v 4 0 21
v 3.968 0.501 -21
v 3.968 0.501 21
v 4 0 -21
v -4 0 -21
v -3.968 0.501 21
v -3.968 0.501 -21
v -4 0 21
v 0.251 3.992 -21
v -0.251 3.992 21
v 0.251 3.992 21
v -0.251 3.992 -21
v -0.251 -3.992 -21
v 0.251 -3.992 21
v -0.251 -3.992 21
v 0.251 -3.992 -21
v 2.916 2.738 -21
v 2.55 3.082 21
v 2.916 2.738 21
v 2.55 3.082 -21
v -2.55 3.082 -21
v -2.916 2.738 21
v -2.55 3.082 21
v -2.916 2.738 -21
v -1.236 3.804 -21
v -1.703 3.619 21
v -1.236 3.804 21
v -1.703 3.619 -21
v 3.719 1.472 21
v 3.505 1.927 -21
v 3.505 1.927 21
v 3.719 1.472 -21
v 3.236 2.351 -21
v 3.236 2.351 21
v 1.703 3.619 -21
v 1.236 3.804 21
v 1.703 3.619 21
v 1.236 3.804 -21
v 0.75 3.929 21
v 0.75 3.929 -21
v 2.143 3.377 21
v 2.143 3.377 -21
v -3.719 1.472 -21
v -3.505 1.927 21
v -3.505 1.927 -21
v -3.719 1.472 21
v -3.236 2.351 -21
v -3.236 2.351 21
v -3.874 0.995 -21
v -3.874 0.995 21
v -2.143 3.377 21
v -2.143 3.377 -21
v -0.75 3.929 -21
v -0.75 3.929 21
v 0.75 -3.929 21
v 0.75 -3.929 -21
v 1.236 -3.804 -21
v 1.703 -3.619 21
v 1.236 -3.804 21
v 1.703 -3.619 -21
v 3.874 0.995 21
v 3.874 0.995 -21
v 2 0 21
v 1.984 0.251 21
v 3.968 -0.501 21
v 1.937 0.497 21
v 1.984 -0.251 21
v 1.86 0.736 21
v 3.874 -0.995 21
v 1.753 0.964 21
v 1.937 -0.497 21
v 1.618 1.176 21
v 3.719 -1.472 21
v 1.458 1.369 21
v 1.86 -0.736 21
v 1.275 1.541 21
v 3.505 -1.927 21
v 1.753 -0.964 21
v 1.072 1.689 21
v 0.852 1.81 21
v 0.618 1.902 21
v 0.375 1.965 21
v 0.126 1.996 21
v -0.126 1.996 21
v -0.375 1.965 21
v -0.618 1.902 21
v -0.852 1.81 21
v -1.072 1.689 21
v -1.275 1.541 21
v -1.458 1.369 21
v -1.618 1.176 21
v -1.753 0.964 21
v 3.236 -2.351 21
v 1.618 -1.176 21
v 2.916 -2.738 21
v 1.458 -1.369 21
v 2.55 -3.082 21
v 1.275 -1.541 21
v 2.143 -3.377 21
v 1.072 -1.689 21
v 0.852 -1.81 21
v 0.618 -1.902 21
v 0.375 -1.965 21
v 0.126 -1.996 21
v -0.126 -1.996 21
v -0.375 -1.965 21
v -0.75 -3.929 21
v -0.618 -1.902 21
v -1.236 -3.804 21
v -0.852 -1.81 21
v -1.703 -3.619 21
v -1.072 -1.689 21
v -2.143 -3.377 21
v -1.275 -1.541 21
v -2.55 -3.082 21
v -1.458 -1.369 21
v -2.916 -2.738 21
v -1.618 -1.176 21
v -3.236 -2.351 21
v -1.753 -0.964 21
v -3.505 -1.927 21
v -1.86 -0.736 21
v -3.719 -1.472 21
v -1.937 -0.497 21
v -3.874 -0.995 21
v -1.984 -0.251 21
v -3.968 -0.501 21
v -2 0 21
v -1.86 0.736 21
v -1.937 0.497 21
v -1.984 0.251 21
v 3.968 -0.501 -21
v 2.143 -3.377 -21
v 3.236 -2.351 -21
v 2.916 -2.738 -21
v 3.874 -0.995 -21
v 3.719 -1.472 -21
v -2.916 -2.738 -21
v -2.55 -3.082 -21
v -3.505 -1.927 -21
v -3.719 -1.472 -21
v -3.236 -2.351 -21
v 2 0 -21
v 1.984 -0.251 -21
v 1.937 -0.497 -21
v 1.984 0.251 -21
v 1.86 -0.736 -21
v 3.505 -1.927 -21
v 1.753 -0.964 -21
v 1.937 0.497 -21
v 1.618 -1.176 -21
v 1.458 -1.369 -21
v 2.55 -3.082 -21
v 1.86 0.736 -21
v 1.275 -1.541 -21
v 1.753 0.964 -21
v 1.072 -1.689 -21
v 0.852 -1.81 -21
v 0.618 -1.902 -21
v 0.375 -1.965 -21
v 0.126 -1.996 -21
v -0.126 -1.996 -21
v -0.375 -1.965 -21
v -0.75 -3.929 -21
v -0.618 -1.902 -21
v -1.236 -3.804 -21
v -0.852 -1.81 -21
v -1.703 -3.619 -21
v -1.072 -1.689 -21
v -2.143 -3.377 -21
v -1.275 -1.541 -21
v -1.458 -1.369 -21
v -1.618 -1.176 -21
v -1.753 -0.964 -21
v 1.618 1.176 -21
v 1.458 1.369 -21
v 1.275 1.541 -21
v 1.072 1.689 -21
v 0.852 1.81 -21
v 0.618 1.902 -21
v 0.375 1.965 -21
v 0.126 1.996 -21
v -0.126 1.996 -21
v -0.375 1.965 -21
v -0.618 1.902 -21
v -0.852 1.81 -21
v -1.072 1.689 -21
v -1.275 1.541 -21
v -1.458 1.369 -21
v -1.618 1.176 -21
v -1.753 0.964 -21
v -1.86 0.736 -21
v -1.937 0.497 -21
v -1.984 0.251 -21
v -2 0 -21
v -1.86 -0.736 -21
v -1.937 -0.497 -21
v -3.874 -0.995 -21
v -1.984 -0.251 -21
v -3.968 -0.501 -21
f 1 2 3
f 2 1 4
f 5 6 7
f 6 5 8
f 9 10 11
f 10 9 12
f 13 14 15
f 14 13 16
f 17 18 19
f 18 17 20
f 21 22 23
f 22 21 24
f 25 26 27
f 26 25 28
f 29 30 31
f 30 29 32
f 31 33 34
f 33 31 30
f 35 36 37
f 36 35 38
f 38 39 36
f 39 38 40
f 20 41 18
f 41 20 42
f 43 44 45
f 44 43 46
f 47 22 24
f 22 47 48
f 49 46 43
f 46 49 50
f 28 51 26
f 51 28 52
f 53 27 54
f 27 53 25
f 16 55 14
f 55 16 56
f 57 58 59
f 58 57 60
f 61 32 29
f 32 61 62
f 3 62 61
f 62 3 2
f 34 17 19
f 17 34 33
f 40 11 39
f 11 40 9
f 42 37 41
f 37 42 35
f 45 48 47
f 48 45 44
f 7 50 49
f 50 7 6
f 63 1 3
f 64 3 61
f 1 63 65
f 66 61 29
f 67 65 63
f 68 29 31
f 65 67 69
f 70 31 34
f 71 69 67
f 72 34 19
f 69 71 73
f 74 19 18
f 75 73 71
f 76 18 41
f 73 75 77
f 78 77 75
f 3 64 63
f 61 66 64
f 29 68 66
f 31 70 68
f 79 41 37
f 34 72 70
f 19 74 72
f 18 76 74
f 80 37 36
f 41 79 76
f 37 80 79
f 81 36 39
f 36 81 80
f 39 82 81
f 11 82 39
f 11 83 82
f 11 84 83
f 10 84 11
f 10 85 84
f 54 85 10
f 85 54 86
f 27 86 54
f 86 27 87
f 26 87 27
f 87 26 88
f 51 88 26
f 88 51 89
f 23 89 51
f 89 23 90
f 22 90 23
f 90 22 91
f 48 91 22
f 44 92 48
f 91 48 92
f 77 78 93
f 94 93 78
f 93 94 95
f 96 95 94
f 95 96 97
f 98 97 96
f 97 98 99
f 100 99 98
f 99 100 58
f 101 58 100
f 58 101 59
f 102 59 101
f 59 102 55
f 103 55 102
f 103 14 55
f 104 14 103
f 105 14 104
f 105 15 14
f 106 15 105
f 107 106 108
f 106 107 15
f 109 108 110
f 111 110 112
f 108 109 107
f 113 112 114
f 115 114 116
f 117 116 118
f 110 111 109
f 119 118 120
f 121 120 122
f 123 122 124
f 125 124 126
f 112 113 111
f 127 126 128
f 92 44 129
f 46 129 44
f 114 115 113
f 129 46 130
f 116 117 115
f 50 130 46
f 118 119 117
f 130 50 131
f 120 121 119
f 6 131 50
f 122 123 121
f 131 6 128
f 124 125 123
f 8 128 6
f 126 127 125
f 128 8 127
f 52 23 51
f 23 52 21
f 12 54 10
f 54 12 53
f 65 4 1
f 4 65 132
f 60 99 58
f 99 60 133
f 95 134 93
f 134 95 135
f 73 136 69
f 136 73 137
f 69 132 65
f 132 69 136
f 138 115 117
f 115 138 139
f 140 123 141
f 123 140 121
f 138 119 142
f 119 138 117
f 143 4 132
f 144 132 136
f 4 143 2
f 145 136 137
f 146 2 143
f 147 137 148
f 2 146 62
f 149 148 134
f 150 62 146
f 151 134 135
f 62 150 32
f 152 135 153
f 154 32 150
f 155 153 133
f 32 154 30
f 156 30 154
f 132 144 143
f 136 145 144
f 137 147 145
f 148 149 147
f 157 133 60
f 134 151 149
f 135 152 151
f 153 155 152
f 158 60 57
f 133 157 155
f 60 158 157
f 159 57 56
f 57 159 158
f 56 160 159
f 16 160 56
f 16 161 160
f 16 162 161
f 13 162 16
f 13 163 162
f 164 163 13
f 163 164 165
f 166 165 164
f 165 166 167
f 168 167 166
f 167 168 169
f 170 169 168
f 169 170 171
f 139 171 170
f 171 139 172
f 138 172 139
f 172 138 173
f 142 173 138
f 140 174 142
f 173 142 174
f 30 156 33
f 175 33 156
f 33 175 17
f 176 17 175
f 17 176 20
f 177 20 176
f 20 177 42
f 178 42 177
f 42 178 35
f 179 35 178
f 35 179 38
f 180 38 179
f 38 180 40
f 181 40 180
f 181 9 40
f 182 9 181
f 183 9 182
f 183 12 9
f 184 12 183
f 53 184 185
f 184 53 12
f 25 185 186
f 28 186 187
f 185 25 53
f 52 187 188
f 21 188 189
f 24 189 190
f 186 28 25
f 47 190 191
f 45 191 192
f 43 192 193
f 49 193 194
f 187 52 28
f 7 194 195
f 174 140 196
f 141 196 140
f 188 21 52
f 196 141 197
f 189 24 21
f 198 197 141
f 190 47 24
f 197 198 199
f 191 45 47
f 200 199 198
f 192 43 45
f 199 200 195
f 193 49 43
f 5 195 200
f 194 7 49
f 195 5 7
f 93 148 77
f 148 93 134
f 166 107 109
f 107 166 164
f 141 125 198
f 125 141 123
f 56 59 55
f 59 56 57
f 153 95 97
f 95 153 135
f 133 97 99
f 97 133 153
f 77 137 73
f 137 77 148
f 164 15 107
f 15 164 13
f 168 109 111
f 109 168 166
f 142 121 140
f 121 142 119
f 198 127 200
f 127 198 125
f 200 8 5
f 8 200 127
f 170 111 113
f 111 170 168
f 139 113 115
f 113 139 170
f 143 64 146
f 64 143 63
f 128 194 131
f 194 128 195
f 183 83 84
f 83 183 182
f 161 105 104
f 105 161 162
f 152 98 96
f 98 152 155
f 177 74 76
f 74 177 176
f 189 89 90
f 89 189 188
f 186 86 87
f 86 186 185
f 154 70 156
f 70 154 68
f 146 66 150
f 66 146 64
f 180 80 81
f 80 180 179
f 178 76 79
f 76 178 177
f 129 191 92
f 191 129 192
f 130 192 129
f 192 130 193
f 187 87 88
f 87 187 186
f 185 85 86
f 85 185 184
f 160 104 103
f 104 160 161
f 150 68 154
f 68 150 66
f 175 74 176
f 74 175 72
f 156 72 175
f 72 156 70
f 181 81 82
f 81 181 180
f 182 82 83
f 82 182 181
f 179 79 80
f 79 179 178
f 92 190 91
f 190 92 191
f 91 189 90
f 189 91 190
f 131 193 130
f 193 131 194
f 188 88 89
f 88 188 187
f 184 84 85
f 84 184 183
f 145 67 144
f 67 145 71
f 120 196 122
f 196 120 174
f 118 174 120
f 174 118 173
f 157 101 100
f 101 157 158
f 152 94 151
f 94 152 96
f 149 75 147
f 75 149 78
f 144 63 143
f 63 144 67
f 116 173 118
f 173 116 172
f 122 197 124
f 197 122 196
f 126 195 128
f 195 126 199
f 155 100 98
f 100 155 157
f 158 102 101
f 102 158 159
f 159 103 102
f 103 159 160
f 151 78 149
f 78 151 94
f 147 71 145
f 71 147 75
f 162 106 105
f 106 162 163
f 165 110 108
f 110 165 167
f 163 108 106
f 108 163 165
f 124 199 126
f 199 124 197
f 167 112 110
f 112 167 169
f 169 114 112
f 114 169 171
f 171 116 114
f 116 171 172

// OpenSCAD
$fn = 50;


difference() {
	union() {
		translate(v = [0, 0, -21.0000000000]) {
			cylinder(h = 42, r = 4.0000000000);
		}
	}
	union() {
		translate(v = [0, 0, -100.0000000000]) {
			cylinder(h = 200, r = 2);
		}
	}
}
